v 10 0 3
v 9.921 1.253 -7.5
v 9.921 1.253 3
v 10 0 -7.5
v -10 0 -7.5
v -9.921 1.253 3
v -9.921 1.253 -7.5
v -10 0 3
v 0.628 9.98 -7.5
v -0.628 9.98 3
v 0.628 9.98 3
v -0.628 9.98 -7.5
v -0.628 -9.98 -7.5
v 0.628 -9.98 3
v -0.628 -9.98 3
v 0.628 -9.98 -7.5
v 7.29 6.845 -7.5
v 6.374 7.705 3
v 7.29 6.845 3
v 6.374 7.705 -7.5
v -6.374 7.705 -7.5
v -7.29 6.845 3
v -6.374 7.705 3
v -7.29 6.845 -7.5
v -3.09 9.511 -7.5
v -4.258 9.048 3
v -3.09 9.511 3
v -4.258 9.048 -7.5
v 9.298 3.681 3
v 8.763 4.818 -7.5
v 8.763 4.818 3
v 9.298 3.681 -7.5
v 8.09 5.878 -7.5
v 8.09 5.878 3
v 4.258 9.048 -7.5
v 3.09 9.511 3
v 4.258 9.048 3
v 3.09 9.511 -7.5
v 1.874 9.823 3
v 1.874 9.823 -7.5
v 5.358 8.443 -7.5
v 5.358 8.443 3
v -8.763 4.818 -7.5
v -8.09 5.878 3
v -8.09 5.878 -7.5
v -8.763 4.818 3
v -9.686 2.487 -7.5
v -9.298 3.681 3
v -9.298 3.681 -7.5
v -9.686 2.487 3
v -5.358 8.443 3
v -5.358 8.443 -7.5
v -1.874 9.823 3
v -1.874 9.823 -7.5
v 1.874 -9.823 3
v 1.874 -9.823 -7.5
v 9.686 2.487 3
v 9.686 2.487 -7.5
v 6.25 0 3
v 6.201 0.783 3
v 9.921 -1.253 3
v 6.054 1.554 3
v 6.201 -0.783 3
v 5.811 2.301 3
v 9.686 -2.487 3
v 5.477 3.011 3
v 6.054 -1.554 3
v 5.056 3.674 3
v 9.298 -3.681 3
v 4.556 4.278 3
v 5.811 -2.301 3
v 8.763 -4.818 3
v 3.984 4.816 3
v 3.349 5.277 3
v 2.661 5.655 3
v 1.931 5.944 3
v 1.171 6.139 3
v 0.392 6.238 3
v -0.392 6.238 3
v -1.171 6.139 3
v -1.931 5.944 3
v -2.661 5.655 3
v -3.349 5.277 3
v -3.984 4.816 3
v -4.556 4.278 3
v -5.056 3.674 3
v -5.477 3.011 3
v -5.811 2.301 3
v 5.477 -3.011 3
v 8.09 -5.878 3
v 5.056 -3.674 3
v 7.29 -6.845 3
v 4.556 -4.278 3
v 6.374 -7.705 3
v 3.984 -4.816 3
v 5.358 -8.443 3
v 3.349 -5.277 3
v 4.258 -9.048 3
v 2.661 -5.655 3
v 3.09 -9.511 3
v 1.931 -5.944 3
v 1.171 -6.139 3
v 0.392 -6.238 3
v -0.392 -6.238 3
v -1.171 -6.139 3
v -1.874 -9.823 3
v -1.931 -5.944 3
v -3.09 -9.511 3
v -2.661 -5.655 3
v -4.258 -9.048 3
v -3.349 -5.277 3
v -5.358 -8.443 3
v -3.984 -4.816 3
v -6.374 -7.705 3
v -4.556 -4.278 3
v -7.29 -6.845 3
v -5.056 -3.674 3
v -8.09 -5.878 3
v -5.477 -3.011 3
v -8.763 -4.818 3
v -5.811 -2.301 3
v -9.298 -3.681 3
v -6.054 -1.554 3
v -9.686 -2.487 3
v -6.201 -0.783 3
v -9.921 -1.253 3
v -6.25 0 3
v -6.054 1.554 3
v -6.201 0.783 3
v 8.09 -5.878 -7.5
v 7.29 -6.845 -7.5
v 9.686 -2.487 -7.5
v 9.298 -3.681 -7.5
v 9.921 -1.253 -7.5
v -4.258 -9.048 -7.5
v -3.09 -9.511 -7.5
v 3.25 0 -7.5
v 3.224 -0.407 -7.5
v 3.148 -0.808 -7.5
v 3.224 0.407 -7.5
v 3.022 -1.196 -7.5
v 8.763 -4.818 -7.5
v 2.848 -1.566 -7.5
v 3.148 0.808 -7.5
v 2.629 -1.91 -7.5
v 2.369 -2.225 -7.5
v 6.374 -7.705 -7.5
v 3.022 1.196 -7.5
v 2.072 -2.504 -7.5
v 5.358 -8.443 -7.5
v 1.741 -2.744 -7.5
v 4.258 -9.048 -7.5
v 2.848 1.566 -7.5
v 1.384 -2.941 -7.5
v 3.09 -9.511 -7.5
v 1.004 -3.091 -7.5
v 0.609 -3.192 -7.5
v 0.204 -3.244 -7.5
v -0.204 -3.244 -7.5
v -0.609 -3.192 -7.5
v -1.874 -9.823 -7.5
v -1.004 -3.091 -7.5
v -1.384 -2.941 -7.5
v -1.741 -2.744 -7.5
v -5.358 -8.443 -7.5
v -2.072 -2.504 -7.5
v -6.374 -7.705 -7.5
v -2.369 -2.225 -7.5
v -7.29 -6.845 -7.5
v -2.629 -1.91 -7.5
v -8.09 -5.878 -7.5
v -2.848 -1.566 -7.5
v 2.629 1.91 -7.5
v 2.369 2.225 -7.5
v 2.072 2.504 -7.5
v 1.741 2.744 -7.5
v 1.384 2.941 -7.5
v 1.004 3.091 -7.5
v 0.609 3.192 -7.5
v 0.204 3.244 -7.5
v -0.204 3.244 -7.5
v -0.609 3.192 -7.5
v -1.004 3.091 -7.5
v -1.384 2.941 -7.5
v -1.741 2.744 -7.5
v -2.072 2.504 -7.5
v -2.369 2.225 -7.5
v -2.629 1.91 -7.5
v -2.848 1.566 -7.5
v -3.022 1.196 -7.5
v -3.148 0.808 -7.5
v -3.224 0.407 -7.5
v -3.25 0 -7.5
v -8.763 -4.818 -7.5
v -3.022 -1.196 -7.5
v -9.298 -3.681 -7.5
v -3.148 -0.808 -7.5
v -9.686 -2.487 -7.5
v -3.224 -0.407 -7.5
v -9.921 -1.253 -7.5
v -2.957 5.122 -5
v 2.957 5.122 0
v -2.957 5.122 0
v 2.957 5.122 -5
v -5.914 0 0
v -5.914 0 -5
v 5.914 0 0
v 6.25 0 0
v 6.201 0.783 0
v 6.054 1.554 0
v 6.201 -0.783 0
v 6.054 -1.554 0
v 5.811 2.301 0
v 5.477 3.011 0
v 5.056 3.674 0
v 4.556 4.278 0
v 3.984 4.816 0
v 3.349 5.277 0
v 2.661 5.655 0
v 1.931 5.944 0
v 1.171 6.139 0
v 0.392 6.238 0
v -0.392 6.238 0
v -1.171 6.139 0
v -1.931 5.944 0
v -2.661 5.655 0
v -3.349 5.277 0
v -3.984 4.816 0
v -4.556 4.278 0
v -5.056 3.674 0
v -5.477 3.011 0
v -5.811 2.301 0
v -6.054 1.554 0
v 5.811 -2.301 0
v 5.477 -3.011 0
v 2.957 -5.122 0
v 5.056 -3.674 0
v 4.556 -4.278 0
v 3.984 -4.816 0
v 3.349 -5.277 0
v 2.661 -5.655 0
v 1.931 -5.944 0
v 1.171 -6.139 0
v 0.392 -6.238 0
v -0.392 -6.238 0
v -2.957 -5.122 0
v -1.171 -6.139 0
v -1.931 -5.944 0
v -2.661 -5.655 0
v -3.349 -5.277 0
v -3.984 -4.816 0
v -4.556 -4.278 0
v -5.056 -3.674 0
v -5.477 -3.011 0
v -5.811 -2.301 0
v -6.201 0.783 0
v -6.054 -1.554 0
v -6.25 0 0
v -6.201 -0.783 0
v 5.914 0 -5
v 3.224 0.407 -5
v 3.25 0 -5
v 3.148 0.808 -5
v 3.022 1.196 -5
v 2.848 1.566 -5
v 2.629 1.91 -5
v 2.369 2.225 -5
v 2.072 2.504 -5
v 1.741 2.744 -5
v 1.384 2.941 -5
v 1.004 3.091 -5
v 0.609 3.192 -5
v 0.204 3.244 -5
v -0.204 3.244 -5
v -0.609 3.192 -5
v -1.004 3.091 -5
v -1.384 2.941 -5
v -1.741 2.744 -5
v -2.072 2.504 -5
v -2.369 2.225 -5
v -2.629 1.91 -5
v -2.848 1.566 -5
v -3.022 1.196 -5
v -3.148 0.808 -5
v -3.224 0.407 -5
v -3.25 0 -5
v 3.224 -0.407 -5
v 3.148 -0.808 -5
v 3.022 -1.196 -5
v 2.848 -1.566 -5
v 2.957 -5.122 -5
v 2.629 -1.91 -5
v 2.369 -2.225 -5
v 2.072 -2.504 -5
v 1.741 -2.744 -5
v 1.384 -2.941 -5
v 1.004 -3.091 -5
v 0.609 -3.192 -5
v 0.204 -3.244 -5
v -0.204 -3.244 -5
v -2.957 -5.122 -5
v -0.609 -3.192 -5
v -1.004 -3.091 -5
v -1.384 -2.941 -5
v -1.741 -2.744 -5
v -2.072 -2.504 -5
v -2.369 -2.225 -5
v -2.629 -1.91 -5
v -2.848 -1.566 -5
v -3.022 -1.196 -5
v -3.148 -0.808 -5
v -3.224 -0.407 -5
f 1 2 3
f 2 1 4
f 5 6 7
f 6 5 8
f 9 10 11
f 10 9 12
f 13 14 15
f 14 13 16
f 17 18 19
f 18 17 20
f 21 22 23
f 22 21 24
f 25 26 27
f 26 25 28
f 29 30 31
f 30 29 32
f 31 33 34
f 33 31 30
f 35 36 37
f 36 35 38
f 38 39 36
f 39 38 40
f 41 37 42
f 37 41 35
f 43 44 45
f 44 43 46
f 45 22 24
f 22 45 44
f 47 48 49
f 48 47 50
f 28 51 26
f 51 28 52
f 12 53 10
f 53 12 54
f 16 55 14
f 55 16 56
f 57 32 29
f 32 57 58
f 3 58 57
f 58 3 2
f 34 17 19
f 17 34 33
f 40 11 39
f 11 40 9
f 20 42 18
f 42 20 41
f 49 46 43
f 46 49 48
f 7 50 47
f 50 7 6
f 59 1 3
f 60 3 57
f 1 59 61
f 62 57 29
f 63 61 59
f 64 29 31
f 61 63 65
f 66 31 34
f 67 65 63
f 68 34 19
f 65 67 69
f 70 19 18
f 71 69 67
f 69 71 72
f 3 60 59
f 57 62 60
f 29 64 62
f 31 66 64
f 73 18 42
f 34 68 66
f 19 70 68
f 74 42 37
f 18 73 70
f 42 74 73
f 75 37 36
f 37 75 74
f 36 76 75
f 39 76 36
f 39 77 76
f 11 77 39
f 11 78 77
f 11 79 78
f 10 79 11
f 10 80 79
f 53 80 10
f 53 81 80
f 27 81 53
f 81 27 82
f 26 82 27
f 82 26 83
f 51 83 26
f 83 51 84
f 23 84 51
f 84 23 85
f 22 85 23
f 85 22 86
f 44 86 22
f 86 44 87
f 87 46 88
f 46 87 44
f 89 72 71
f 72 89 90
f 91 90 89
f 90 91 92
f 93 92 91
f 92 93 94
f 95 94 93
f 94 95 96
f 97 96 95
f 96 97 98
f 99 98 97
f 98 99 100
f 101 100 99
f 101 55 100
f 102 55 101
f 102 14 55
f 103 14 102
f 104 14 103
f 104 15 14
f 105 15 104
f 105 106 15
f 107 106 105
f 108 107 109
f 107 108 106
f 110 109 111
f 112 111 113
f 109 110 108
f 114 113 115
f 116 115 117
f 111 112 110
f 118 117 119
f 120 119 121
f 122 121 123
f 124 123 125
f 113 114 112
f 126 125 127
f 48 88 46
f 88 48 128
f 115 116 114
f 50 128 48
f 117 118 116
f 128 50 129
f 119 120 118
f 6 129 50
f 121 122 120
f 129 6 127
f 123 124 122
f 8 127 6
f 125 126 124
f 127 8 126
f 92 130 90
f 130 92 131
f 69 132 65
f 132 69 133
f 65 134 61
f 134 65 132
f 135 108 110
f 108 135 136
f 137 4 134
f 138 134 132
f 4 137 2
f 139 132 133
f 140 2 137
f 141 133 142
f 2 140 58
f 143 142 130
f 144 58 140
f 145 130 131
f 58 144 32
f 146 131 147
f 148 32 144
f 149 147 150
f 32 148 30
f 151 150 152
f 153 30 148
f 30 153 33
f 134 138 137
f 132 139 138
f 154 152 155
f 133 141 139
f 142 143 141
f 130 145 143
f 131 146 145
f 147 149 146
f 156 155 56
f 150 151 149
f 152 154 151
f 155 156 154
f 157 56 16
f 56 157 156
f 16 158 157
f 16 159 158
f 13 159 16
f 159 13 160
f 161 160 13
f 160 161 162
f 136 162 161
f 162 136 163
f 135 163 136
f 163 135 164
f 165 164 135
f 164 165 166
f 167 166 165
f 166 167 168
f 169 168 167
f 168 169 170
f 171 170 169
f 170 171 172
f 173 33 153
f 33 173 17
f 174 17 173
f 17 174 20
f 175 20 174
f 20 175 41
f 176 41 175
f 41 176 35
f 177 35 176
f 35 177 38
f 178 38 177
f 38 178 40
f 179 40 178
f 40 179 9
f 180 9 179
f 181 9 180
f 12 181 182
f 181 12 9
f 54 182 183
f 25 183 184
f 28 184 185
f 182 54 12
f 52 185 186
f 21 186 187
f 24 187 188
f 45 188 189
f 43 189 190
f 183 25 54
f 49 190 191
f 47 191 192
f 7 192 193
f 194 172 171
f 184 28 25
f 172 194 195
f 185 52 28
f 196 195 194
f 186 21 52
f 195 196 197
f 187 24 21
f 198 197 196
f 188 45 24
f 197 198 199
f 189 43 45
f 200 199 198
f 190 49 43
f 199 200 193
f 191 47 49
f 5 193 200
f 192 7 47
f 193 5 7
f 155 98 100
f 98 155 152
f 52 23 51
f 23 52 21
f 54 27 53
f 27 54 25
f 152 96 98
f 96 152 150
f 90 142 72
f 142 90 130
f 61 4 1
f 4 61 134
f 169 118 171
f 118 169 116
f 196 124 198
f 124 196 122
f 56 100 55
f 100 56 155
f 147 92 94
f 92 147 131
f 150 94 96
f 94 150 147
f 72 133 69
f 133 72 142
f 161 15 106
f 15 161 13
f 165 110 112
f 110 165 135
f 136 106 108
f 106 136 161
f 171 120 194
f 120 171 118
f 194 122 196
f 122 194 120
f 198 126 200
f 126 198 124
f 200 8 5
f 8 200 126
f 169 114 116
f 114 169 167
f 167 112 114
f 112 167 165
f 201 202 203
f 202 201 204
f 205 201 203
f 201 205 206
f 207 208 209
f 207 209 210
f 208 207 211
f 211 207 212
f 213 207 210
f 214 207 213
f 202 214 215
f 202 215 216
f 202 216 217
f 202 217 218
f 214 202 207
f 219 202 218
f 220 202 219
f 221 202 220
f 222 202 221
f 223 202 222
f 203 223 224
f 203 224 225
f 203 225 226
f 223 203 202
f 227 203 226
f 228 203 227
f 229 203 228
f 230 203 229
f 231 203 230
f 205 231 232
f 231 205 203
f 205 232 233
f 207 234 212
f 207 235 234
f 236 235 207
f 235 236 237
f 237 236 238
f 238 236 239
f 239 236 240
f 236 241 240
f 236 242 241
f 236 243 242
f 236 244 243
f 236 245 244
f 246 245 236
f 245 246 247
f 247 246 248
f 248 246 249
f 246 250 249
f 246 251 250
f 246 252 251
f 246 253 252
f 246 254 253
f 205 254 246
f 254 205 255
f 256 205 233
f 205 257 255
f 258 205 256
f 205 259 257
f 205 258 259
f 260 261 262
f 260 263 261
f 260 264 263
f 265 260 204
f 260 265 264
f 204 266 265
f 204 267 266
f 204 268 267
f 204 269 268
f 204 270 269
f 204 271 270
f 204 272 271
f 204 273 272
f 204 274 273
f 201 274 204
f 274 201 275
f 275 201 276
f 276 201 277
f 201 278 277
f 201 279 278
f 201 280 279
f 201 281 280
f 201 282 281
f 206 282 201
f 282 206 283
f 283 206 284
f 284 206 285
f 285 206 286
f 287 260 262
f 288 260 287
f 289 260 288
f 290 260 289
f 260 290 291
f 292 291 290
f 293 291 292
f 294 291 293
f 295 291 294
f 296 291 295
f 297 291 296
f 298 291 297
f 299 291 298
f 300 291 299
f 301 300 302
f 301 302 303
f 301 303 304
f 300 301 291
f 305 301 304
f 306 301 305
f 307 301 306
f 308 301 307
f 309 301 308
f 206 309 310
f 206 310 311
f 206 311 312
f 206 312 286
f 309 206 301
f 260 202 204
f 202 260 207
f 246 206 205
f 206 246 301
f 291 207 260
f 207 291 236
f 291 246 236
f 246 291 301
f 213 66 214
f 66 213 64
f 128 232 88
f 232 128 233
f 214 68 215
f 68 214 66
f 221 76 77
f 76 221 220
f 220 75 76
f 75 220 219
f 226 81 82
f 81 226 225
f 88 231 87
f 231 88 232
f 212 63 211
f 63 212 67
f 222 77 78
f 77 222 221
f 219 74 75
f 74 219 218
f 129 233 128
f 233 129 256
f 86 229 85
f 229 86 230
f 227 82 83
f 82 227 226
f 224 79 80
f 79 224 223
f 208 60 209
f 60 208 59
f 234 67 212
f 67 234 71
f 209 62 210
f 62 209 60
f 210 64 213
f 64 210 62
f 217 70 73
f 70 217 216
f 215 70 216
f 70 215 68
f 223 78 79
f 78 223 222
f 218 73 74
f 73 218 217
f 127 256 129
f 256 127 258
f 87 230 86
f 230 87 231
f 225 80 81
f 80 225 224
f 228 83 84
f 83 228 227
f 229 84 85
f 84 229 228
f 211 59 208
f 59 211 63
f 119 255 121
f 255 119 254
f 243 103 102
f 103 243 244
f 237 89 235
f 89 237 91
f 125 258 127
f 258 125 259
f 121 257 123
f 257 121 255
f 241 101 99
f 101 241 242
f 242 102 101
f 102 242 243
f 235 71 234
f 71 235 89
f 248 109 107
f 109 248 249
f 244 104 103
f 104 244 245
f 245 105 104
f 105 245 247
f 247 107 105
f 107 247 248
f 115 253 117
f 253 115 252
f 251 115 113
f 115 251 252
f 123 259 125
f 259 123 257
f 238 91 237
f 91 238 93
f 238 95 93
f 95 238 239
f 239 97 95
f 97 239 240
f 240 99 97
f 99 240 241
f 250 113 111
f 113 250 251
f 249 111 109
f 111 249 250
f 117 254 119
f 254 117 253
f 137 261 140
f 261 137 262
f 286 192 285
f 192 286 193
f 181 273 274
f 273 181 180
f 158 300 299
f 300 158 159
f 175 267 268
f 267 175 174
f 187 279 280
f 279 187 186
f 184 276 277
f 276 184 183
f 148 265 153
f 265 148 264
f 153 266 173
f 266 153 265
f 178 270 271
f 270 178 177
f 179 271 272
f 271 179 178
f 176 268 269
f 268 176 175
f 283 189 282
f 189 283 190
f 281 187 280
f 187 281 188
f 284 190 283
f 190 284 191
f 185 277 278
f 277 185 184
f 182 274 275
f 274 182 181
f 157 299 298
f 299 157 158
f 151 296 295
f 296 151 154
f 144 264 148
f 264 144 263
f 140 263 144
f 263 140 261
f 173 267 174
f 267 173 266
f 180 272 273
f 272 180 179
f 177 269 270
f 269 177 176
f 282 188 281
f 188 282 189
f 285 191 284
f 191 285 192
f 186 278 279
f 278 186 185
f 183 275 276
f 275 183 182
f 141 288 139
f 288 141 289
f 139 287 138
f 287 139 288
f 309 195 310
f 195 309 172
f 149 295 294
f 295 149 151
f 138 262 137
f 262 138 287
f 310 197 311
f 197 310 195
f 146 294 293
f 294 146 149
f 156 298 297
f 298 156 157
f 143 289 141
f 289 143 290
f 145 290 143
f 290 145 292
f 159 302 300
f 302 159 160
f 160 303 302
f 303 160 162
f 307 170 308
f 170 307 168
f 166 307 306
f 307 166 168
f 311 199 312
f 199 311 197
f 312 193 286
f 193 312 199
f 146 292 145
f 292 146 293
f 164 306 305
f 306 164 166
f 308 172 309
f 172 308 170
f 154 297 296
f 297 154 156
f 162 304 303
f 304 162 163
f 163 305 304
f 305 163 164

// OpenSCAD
$fn = 50;


difference() {
	union() {
		translate(v = [0, 0, -7.5000000000]) {
			cylinder(h = 10.5000000000, r = 10.0000000000);
		}
		#translate(v = [0, 0, -9.0000000000]) {
			cylinder(h = 9, r = 2.8750000000);
		}
	}
	union() {
		translate(v = [0, 0, 0]) {
			rotate(a = [0, 0, 0]) {
				difference() {
					union() {
						translate(v = [0, 0, -5]) {
							linear_extrude(height = 5) {
								polygon(points = [[5.9142500000, 0.0000000000], [2.9571250000, 5.1218907443], [-2.9571250000, 5.1218907443], [-5.9142500000, 0.0000000000], [-2.9571250000, -5.1218907443], [2.9571250000, -5.1218907443]]);
							}
						}
					}
					union();
				}
			}
		}
		#cylinder(h = 3, r = 6.2500000000);
		#translate(v = [0, 0, -100.0000000000]) {
			cylinder(h = 200, r = 3.2500000000);
		}
	}
}
